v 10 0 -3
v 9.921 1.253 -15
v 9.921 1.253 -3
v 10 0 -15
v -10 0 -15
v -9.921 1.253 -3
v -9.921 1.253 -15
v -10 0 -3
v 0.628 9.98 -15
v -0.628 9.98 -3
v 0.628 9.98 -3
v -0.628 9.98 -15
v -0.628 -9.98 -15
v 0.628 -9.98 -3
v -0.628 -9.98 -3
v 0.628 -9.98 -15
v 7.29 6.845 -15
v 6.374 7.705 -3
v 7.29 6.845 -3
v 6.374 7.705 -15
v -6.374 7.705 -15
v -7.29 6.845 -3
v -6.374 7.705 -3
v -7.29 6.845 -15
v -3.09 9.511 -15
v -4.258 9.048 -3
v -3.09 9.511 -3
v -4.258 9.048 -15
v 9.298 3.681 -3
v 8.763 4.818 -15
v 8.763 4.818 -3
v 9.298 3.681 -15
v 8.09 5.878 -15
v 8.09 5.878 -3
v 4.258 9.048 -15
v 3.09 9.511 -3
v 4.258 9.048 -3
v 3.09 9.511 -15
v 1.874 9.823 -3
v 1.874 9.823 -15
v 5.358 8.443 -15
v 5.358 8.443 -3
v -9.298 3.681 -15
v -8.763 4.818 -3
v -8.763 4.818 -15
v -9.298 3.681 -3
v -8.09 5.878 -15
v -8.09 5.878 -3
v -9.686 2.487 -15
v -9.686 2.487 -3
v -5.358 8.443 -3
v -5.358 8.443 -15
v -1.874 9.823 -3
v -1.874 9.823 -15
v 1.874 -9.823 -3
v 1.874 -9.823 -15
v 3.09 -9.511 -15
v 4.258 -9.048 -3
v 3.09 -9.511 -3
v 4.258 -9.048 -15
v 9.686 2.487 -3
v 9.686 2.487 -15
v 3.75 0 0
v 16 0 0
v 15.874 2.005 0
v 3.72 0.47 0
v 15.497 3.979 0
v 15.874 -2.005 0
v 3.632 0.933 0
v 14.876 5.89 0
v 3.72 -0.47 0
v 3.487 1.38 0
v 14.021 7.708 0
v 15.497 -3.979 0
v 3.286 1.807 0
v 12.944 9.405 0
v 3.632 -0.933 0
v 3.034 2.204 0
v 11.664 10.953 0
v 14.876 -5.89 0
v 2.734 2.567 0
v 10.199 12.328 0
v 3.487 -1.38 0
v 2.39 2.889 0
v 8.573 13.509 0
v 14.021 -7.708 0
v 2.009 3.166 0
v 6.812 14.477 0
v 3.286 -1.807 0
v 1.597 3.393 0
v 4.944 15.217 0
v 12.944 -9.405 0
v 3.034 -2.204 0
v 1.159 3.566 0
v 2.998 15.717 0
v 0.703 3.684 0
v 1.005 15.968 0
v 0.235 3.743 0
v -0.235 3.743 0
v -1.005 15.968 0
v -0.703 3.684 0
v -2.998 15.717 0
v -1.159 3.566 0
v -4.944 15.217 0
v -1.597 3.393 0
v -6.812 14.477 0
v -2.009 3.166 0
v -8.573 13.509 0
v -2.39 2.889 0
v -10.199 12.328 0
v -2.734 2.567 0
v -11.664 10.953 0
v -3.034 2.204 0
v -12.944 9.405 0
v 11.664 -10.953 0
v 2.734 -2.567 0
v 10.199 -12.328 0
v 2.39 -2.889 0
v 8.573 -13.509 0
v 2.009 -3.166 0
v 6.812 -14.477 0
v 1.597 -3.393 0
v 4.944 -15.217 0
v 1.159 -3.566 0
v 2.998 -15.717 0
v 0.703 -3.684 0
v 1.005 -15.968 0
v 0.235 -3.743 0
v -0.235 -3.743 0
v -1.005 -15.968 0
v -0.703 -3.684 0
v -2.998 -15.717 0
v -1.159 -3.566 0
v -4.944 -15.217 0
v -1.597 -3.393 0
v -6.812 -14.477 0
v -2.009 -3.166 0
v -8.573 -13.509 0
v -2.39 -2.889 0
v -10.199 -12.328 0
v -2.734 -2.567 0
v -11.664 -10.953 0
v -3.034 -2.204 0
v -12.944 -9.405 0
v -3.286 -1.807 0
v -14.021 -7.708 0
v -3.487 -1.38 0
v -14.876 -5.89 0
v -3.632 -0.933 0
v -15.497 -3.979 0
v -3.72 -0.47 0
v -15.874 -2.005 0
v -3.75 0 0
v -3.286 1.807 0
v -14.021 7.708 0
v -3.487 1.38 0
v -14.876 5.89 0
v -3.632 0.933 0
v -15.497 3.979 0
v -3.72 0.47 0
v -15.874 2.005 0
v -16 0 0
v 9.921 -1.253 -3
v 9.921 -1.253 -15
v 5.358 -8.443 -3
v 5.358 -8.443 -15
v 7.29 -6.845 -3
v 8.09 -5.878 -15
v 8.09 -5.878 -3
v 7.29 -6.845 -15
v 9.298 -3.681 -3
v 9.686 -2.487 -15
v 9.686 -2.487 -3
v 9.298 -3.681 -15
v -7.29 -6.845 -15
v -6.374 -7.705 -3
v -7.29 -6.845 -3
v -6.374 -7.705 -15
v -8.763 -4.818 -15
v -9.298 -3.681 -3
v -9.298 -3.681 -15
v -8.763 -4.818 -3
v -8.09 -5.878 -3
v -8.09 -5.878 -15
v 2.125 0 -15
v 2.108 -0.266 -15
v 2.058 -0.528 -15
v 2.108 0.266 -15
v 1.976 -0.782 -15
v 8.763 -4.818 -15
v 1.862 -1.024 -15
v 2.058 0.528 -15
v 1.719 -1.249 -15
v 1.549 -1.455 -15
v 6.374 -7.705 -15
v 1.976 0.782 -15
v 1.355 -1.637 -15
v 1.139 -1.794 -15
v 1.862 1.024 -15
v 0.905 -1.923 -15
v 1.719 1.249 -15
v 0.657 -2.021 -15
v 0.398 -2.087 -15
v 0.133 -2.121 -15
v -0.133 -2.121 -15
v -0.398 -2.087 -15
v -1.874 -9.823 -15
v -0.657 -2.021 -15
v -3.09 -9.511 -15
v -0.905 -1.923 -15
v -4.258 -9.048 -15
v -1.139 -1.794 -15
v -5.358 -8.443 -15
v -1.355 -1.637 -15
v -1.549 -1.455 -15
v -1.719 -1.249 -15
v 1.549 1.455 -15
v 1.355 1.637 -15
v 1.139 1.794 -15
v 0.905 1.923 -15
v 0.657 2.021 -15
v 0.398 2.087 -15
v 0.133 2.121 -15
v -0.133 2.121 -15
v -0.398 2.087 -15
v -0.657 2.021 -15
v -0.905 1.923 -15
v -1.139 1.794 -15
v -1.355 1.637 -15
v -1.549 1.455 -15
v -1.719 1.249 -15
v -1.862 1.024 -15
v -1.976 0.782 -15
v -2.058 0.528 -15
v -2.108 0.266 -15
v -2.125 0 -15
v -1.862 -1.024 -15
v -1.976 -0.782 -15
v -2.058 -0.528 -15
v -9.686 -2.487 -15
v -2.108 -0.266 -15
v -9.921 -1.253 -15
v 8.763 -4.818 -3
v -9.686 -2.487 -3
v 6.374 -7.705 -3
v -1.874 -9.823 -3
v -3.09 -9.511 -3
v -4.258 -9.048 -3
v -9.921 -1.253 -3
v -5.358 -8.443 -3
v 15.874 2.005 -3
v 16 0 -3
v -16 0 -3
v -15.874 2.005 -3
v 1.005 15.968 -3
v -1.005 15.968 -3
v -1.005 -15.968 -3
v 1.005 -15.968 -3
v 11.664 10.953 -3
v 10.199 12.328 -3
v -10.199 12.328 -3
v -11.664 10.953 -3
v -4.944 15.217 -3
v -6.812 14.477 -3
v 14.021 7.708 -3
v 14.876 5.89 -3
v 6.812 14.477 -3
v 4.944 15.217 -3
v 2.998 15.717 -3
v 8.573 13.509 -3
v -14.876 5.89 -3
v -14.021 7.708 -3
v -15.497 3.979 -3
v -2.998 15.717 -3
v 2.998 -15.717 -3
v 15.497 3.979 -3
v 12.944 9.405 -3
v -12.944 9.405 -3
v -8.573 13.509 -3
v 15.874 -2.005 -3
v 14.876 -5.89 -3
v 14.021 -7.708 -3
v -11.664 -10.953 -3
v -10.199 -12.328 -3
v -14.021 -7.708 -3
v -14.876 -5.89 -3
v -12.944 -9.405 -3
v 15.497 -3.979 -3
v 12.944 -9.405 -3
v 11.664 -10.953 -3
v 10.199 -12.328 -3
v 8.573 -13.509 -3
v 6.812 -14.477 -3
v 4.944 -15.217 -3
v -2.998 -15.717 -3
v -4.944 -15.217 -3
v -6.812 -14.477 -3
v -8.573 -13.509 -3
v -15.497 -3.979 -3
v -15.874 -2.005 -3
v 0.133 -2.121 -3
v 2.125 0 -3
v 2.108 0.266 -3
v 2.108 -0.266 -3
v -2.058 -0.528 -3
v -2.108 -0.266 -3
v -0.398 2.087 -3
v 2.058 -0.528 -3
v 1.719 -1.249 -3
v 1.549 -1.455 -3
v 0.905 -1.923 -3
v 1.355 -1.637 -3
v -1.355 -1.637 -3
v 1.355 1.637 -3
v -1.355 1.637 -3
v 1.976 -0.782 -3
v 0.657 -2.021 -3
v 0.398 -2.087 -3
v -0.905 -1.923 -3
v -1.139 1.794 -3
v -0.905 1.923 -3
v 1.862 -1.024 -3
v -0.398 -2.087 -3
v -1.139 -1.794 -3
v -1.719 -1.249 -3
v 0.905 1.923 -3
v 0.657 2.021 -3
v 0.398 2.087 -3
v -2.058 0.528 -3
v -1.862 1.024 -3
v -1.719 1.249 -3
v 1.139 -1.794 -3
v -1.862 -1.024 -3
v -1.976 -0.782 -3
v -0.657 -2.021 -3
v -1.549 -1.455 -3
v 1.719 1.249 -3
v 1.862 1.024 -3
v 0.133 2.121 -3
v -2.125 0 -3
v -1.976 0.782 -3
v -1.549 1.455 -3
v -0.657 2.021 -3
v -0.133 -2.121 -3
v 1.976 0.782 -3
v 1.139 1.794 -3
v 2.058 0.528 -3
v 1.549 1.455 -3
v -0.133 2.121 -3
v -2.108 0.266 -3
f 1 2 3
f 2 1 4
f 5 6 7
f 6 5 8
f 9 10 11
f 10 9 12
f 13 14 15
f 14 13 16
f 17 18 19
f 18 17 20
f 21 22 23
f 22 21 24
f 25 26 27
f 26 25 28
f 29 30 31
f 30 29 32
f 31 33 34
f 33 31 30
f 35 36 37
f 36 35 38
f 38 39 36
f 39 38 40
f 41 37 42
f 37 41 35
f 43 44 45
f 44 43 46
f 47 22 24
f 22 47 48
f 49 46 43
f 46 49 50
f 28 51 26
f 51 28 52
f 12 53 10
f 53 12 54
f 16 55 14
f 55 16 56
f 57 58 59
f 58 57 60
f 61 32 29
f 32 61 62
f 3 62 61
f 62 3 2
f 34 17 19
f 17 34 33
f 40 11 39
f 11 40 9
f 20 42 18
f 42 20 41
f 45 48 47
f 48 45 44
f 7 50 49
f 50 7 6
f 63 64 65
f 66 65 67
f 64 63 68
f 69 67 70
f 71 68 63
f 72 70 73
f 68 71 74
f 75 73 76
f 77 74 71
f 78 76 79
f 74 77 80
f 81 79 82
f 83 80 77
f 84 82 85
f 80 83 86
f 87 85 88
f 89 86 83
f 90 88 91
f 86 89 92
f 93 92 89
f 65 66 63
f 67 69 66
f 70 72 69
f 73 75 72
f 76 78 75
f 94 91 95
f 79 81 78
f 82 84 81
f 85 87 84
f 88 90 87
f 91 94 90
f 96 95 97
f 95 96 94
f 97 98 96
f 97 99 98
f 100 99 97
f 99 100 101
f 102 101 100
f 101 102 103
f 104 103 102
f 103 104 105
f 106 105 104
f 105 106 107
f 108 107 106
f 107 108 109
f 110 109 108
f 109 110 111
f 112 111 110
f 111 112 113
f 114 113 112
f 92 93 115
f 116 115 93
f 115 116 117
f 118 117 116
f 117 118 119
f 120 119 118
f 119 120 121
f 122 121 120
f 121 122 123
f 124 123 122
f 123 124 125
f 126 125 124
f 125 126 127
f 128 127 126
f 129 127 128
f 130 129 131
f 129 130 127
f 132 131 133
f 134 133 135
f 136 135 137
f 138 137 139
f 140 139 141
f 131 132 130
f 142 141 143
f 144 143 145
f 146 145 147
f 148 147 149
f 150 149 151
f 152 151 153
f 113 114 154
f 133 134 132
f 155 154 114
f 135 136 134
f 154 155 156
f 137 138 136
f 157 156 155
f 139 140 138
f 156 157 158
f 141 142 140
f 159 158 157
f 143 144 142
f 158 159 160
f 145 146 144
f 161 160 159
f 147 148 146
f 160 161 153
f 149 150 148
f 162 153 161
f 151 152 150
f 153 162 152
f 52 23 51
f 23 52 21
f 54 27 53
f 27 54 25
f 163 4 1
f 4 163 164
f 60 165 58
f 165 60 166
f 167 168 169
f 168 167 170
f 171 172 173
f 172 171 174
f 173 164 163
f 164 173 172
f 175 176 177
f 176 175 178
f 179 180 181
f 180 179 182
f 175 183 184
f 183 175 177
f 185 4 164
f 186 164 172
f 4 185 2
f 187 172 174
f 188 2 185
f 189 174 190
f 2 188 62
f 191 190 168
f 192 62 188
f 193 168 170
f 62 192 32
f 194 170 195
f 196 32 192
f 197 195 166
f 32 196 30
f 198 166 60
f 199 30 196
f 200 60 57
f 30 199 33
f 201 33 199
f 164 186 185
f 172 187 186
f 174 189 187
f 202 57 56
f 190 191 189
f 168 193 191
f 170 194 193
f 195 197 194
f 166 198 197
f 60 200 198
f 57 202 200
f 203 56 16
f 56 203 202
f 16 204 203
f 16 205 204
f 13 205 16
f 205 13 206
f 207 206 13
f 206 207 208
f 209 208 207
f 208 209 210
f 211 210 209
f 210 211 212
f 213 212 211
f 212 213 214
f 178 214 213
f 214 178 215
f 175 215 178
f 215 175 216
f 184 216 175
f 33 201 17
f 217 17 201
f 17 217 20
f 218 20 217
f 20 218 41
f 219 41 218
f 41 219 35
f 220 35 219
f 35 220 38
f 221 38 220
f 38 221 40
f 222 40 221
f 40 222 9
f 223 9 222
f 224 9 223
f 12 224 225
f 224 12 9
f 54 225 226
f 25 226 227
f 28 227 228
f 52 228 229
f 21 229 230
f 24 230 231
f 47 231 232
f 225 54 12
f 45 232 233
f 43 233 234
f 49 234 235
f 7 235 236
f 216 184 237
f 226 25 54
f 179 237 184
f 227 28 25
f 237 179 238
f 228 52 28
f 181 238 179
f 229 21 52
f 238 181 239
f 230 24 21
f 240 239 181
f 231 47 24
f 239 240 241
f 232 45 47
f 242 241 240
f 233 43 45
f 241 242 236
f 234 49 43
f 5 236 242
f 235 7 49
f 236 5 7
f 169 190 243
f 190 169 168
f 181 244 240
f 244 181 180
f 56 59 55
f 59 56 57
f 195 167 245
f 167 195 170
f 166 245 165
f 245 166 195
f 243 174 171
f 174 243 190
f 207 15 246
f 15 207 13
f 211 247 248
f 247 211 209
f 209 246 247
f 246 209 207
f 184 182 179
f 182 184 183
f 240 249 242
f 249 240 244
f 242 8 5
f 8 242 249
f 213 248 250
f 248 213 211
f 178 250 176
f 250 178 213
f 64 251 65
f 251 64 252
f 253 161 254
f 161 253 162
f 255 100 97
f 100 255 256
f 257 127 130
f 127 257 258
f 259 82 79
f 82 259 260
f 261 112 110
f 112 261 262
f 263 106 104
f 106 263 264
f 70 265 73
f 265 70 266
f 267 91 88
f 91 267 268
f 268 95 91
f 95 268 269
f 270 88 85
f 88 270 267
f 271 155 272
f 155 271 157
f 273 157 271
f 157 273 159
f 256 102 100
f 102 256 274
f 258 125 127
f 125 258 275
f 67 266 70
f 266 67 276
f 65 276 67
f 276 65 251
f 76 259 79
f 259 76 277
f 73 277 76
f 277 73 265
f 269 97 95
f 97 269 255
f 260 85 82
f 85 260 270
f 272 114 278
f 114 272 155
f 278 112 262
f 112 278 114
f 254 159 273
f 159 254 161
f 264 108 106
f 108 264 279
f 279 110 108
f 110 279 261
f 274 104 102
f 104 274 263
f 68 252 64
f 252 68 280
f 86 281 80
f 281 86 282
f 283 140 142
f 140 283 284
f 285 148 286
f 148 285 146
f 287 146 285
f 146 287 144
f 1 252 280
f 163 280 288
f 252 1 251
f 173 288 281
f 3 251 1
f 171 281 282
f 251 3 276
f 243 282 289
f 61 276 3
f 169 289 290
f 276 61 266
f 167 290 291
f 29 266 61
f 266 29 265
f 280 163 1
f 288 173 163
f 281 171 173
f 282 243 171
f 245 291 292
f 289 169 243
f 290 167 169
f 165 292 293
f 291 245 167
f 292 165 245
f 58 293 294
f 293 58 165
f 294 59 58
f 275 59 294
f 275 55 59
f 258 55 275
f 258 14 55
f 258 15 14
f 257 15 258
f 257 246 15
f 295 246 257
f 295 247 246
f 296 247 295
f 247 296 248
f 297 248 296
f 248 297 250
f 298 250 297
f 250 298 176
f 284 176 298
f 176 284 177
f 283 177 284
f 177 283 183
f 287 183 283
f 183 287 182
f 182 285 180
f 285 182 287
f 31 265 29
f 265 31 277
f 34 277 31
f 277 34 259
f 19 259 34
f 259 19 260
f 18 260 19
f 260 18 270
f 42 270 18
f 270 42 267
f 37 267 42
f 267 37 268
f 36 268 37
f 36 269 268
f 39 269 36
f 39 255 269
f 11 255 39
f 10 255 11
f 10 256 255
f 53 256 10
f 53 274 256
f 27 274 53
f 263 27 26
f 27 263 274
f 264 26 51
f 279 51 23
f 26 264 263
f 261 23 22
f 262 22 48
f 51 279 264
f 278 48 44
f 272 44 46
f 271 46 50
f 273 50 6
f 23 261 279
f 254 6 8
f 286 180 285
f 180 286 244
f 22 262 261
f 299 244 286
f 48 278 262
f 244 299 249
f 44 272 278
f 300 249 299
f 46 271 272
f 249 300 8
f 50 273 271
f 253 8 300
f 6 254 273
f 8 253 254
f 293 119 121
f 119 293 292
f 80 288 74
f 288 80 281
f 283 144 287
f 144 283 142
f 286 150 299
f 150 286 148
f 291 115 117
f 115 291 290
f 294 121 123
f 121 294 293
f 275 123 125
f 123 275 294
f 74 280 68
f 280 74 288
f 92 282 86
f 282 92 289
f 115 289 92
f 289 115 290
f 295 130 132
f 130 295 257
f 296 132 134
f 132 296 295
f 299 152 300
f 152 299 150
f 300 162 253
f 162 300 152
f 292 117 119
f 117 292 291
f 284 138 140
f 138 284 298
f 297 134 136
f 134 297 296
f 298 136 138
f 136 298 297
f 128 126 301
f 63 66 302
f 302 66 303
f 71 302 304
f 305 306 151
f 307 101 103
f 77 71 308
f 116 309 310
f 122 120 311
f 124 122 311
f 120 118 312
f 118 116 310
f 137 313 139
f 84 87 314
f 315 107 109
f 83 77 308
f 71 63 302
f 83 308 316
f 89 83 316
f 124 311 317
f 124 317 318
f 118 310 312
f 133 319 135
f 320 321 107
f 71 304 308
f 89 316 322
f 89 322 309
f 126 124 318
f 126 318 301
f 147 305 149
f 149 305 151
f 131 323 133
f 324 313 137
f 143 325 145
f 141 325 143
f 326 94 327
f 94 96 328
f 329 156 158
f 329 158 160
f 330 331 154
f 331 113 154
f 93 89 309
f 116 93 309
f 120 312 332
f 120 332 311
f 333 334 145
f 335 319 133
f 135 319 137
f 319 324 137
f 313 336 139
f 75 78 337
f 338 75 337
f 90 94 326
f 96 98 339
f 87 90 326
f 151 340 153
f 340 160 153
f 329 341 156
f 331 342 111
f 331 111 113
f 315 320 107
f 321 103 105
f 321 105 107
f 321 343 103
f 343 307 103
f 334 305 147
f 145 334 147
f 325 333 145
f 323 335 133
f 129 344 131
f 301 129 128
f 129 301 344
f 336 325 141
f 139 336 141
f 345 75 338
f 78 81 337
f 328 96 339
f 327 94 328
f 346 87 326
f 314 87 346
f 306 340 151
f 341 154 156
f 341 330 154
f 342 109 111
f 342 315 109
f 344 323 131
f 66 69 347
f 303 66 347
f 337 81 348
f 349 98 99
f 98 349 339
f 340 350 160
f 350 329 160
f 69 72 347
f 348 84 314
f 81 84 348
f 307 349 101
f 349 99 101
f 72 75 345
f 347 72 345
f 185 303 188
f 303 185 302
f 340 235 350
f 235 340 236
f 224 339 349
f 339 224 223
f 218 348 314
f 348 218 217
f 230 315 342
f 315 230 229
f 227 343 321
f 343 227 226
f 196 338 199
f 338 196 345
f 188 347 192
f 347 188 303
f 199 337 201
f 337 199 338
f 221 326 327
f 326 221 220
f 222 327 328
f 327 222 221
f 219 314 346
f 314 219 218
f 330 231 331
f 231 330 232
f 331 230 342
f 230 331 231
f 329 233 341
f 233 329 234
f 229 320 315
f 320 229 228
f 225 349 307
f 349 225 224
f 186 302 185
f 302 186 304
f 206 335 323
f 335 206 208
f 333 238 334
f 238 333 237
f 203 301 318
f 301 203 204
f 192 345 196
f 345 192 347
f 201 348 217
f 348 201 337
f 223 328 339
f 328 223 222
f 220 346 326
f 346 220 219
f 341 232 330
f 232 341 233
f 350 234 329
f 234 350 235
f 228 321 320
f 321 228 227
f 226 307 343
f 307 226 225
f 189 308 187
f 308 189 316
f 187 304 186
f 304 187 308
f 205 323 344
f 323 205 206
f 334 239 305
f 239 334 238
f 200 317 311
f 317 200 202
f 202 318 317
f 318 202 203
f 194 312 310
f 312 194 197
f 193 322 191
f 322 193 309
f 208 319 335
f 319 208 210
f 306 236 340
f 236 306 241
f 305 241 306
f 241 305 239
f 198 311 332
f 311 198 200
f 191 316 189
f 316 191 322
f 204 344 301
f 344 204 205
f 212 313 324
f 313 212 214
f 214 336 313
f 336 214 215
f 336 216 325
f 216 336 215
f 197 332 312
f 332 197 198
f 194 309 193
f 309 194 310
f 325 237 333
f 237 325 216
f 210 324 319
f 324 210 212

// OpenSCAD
$fn = 50;


difference() {
	union() {
		translate(v = [0, 0, -15.0000000000]) {
			cylinder(h = 15, r = 10.0000000000);
		}
		translate(v = [0, 0, -3.0000000000]) {
			cylinder(h = 3, r = 16.0000000000);
		}
	}
	union() {
		translate(v = [0, 0, 0]) {
			rotate(a = [0, 0, 0]) {
				difference() {
					union() {
						#translate(v = [0, 0, -15.0000000000]) {
							cylinder(h = 15, r = 2.0000000000);
						}
						#translate(v = [0, 0, -3]) {
							cylinder(h = 3, r1 = 2.1250000000, r2 = 3.7500000000);
						}
						#translate(v = [0, 0, -15.0000000000]) {
							cylinder(h = 15, r = 2.1250000000);
						}
						#translate(v = [0, 0, -15.0000000000]) {
							cylinder(h = 15, r = 2.0000000000);
						}
					}
					union();
				}
			}
		}
	}
}
